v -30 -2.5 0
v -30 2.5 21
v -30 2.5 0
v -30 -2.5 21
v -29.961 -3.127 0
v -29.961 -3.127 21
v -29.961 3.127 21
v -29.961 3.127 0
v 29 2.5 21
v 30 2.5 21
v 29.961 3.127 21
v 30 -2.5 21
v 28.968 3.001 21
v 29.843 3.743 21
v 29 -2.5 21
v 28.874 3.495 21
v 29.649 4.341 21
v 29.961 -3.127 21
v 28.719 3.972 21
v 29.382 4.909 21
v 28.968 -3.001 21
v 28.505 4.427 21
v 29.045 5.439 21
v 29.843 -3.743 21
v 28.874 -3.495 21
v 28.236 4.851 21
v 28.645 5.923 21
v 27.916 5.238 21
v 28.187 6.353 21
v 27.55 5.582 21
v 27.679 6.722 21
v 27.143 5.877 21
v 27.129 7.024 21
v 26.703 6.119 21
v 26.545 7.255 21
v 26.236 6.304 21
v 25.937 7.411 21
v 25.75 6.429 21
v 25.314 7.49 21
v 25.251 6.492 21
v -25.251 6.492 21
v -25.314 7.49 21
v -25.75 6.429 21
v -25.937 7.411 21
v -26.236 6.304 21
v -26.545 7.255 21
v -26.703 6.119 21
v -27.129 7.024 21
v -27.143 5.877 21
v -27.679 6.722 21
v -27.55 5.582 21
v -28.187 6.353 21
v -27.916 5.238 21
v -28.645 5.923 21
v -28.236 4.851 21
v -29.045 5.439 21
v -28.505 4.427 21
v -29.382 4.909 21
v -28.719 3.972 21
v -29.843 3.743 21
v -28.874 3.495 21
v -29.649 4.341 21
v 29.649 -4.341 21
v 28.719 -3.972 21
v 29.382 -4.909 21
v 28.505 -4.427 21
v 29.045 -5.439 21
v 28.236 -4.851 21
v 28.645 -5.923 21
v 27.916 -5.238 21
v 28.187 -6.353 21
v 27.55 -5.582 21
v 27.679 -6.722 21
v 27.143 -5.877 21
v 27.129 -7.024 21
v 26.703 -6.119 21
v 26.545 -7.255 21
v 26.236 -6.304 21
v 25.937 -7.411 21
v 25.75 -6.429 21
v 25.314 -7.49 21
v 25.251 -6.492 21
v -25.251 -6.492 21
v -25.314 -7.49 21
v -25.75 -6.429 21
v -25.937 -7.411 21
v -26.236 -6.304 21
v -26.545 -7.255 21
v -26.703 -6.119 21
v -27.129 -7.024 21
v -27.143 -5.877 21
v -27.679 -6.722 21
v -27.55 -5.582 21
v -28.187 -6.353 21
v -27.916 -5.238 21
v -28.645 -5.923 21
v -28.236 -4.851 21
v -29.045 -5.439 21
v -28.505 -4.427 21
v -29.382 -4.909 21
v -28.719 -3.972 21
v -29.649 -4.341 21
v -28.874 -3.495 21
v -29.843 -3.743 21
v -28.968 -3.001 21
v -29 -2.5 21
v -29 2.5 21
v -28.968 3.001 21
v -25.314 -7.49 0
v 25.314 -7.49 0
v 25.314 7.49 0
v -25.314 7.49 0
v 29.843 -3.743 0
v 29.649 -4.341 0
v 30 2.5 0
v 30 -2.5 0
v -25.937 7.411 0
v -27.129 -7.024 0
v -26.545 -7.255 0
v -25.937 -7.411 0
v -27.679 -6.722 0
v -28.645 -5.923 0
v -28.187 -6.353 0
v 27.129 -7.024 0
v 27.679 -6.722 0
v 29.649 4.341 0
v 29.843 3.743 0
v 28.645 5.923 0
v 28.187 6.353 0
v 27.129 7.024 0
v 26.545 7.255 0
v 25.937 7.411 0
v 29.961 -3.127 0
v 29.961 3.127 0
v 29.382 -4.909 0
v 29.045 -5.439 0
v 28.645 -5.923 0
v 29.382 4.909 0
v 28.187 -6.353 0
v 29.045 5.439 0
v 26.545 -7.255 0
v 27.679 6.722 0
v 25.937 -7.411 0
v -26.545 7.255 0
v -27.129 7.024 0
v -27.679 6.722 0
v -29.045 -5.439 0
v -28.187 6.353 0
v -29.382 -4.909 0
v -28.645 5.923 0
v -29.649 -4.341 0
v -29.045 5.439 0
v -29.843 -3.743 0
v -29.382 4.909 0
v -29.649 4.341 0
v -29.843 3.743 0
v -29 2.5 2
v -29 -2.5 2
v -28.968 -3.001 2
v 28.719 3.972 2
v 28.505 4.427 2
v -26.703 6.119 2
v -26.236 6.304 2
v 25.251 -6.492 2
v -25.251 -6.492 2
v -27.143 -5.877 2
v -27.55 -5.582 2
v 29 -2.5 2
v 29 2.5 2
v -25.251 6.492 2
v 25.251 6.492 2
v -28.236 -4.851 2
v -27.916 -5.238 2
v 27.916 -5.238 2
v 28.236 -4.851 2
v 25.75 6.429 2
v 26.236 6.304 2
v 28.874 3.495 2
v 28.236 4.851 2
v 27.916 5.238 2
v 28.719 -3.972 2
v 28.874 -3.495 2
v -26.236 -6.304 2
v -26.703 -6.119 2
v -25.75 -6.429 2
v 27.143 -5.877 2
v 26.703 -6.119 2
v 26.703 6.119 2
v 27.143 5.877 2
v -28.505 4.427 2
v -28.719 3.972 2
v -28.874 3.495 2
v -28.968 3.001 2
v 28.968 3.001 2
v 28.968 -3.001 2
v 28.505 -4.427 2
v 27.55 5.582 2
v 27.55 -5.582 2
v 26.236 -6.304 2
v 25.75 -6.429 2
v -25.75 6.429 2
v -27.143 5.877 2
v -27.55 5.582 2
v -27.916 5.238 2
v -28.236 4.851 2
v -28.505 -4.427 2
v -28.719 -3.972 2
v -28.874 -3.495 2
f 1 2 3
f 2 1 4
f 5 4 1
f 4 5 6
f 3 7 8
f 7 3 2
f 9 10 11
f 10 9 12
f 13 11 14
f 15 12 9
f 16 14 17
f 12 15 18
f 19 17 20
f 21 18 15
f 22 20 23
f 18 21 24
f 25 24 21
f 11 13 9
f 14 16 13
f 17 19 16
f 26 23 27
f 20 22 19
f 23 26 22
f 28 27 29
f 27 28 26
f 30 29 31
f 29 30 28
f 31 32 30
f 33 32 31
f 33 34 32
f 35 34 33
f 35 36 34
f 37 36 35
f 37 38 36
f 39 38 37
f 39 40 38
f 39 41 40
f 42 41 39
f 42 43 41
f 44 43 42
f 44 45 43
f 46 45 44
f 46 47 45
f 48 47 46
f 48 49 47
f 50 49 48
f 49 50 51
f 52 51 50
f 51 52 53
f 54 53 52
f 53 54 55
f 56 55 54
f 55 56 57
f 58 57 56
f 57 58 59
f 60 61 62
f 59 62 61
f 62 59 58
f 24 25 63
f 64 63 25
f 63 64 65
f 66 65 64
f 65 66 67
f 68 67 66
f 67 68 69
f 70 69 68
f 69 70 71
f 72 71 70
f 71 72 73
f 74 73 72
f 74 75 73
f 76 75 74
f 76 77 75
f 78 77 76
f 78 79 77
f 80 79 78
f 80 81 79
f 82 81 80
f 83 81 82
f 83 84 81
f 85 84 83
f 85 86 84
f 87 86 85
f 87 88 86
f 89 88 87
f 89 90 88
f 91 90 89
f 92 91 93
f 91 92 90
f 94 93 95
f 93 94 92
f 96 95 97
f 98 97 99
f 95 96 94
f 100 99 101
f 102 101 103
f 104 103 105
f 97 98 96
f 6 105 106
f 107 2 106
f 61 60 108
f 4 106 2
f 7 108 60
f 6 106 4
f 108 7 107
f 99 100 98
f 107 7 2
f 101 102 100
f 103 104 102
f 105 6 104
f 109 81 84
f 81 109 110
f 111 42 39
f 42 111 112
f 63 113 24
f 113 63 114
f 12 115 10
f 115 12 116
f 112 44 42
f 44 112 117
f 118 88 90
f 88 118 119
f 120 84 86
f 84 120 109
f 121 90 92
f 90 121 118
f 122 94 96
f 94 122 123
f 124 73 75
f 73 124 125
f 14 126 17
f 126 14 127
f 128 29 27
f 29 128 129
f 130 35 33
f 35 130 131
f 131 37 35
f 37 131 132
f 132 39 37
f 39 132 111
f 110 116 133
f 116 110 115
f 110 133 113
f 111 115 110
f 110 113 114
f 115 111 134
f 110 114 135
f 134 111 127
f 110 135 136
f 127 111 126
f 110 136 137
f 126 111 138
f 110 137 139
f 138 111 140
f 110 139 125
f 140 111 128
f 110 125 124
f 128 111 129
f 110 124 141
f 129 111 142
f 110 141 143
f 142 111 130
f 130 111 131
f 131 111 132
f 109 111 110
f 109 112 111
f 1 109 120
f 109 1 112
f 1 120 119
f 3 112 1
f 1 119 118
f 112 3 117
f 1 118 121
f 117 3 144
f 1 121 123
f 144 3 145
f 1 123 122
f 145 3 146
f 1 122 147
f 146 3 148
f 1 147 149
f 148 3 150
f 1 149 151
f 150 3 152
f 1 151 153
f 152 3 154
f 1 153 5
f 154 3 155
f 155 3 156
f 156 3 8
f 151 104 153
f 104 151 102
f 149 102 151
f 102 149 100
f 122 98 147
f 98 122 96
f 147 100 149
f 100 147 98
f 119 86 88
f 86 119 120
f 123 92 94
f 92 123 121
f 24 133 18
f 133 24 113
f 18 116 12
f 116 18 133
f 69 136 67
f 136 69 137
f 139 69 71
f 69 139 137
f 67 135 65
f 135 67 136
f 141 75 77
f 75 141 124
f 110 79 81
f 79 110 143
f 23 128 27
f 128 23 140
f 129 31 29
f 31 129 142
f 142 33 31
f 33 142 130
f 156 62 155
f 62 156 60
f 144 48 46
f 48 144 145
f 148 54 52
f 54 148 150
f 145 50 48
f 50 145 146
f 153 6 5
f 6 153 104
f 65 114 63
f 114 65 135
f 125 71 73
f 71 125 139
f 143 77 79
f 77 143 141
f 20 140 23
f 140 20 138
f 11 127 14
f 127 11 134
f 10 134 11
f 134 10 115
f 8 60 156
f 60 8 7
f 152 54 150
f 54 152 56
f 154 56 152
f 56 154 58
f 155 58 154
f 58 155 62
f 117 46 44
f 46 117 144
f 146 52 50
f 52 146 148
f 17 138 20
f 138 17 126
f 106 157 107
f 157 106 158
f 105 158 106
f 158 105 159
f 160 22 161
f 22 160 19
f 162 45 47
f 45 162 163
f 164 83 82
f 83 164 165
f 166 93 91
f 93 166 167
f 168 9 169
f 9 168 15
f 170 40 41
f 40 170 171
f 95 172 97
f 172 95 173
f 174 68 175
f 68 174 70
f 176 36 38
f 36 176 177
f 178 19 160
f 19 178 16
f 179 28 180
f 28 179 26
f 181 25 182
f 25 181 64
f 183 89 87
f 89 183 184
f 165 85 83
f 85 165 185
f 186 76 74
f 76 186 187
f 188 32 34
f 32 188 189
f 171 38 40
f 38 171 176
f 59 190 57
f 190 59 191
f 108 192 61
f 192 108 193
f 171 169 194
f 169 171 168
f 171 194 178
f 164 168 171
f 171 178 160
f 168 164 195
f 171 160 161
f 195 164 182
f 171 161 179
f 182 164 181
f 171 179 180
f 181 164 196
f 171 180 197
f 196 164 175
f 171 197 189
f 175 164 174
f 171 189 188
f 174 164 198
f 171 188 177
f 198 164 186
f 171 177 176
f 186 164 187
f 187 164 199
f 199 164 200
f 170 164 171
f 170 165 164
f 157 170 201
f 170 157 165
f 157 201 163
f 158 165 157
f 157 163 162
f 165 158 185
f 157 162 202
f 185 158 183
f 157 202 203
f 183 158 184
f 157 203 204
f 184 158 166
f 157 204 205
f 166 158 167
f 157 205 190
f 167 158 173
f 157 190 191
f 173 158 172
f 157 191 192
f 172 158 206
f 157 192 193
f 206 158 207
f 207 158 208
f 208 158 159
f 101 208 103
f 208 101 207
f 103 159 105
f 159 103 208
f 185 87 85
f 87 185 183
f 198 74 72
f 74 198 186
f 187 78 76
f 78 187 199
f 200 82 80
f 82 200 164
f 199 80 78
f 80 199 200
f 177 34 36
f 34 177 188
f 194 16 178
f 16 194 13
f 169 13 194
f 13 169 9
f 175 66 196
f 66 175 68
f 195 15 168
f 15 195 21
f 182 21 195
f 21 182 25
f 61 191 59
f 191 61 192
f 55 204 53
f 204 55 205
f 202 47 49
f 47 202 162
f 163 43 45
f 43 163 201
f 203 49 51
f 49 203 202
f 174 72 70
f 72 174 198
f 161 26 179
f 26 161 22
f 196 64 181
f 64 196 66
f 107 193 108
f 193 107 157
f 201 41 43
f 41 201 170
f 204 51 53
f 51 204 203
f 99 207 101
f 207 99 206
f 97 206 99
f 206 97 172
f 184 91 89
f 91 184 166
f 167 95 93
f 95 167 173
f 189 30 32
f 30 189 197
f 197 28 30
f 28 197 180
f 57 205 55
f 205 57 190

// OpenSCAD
$fn = 50;


difference() {
	union() {
		hull() {
			translate(v = [-25.0000000000, 2.5000000000, 0]) {
				cylinder(h = 21, r = 5);
			}
			translate(v = [25.0000000000, 2.5000000000, 0]) {
				cylinder(h = 21, r = 5);
			}
			translate(v = [-25.0000000000, -2.5000000000, 0]) {
				cylinder(h = 21, r = 5);
			}
			translate(v = [25.0000000000, -2.5000000000, 0]) {
				cylinder(h = 21, r = 5);
			}
		}
	}
	union() {
		translate(v = [0, 0, 2]) {
			hull() {
				translate(v = [-25.0000000000, 2.5000000000, 0]) {
					cylinder(h = 19, r = 4);
				}
				translate(v = [25.0000000000, 2.5000000000, 0]) {
					cylinder(h = 19, r = 4);
				}
				translate(v = [-25.0000000000, -2.5000000000, 0]) {
					cylinder(h = 19, r = 4);
				}
				translate(v = [25.0000000000, -2.5000000000, 0]) {
					cylinder(h = 19, r = 4);
				}
			}
		}
	}
}
